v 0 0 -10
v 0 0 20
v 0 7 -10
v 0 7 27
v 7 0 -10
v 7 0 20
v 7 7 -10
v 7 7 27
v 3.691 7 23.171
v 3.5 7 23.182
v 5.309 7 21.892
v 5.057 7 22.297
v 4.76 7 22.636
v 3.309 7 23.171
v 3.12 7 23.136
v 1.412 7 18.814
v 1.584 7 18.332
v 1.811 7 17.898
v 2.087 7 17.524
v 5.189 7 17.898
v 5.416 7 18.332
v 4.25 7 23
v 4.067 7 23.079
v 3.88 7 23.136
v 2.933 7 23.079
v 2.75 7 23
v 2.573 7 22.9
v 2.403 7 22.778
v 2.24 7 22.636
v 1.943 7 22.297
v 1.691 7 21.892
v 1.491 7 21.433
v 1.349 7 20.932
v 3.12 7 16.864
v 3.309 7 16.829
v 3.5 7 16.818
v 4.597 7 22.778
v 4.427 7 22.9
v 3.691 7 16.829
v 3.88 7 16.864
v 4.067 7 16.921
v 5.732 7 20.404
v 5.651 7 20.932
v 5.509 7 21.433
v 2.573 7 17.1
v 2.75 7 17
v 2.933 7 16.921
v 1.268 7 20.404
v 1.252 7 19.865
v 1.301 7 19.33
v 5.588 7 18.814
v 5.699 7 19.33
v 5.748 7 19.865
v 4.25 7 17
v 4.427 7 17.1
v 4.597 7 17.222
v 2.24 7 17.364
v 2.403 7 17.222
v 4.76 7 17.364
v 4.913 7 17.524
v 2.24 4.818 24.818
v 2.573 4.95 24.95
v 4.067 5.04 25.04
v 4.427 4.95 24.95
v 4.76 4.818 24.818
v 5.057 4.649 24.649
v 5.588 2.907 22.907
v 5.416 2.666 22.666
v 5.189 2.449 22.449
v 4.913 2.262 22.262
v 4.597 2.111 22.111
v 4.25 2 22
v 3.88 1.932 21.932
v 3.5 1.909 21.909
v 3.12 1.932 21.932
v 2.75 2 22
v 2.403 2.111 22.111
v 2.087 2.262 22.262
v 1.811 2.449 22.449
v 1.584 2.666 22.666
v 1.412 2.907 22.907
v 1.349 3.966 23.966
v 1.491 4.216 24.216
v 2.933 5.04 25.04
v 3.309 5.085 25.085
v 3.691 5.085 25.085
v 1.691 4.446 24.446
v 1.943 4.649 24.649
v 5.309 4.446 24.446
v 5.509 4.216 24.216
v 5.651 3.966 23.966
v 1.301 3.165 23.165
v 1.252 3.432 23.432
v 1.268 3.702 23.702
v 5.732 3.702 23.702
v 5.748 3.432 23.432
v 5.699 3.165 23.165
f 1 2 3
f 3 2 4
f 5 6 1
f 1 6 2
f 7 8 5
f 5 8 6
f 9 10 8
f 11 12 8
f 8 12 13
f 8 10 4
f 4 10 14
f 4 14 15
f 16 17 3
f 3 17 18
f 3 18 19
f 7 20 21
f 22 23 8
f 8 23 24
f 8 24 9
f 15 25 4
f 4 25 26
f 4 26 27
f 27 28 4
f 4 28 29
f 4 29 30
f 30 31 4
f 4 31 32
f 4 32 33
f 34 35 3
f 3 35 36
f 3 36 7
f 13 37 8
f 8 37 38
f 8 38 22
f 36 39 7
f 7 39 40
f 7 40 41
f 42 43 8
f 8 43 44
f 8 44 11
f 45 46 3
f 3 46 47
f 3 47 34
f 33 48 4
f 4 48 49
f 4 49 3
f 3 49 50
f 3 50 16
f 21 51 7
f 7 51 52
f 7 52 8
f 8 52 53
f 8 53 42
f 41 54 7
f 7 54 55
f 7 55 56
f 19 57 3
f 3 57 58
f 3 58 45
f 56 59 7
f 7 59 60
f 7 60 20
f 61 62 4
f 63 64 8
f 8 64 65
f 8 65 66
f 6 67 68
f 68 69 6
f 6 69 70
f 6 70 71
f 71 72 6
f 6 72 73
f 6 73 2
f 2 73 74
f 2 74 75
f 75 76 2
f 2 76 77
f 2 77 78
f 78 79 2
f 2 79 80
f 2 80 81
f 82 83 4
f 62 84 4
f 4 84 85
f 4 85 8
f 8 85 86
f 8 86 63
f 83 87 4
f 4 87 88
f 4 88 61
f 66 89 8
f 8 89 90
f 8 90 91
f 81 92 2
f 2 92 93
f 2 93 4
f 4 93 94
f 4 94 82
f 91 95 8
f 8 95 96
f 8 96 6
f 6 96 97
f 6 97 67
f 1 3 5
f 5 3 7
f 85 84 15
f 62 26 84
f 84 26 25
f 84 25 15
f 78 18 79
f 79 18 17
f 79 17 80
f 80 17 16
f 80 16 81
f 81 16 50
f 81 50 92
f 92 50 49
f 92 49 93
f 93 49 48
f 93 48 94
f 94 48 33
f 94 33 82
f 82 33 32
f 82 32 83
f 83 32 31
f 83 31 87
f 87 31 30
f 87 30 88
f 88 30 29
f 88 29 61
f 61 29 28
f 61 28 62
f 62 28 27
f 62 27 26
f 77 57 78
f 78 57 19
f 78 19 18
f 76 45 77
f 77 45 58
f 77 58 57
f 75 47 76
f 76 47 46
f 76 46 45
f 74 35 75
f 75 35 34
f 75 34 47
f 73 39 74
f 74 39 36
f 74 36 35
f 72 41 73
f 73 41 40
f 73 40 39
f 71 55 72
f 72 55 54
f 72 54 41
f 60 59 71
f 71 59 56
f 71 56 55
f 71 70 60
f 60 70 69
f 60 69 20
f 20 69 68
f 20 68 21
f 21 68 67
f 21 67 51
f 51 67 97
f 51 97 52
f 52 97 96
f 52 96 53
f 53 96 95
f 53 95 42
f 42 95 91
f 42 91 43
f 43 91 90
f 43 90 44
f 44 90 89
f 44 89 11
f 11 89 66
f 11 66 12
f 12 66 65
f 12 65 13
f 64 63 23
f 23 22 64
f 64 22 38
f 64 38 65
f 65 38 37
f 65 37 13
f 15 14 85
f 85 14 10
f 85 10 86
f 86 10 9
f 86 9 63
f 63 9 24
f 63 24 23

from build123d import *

# Parameters (mm, degrees)
SKETCH1_W           = 7
SKETCH1_H           = 7
BOSS_EXTRUDE1_DEPTH = 20
BOSS_EXTRUDE2_DEPTH = 7
SKETCH5_W           = 7
SKETCH5_H           = 7
BOSS_EXTRUDE4_DEPTH = 10
SKETCH4_R           = 2.25
CUT_EXTRUDE1_DEPTH  = 27.162950904


with BuildPart() as part:
    # Sketch1 → Boss-Extrude1 (new body)
    with BuildSketch(Plane.XY):
        with Locations((3.5, 3.5)):
            Rectangle(SKETCH1_W, SKETCH1_H)
    extrude(amount=BOSS_EXTRUDE1_DEPTH)

    # Sketch3 → Boss-Extrude2 (add)
    with BuildSketch(Plane(origin=(7, 0, 0), x_dir=(0, 0, -1), z_dir=(1, 0, 0))):
        Polygon((-20, 7), (-27, 7), (-20, 0), align=None)
    extrude(amount=-BOSS_EXTRUDE2_DEPTH)

    # Sketch5 → Boss-Extrude4 (add)
    with BuildSketch(Plane(origin=(0, 0, 0), x_dir=(-1, 0, 0), z_dir=(0, 0, -1))):
        with Locations((-3.5, 3.5)):
            Rectangle(SKETCH5_W, SKETCH5_H)
    extrude(amount=BOSS_EXTRUDE4_DEPTH)

    # Sketch4 → Cut-Extrude1 (cut, through all)
    with BuildSketch(Plane(origin=(0, -10, 10), x_dir=(1, 0, 0), z_dir=(0, -0.707106781, 0.707106781))):
        with Locations((3.5, 19.091883092)):
            Circle(SKETCH4_R)
    extrude(amount=-CUT_EXTRUDE1_DEPTH, mode=Mode.SUBTRACT)


solid = part.part
